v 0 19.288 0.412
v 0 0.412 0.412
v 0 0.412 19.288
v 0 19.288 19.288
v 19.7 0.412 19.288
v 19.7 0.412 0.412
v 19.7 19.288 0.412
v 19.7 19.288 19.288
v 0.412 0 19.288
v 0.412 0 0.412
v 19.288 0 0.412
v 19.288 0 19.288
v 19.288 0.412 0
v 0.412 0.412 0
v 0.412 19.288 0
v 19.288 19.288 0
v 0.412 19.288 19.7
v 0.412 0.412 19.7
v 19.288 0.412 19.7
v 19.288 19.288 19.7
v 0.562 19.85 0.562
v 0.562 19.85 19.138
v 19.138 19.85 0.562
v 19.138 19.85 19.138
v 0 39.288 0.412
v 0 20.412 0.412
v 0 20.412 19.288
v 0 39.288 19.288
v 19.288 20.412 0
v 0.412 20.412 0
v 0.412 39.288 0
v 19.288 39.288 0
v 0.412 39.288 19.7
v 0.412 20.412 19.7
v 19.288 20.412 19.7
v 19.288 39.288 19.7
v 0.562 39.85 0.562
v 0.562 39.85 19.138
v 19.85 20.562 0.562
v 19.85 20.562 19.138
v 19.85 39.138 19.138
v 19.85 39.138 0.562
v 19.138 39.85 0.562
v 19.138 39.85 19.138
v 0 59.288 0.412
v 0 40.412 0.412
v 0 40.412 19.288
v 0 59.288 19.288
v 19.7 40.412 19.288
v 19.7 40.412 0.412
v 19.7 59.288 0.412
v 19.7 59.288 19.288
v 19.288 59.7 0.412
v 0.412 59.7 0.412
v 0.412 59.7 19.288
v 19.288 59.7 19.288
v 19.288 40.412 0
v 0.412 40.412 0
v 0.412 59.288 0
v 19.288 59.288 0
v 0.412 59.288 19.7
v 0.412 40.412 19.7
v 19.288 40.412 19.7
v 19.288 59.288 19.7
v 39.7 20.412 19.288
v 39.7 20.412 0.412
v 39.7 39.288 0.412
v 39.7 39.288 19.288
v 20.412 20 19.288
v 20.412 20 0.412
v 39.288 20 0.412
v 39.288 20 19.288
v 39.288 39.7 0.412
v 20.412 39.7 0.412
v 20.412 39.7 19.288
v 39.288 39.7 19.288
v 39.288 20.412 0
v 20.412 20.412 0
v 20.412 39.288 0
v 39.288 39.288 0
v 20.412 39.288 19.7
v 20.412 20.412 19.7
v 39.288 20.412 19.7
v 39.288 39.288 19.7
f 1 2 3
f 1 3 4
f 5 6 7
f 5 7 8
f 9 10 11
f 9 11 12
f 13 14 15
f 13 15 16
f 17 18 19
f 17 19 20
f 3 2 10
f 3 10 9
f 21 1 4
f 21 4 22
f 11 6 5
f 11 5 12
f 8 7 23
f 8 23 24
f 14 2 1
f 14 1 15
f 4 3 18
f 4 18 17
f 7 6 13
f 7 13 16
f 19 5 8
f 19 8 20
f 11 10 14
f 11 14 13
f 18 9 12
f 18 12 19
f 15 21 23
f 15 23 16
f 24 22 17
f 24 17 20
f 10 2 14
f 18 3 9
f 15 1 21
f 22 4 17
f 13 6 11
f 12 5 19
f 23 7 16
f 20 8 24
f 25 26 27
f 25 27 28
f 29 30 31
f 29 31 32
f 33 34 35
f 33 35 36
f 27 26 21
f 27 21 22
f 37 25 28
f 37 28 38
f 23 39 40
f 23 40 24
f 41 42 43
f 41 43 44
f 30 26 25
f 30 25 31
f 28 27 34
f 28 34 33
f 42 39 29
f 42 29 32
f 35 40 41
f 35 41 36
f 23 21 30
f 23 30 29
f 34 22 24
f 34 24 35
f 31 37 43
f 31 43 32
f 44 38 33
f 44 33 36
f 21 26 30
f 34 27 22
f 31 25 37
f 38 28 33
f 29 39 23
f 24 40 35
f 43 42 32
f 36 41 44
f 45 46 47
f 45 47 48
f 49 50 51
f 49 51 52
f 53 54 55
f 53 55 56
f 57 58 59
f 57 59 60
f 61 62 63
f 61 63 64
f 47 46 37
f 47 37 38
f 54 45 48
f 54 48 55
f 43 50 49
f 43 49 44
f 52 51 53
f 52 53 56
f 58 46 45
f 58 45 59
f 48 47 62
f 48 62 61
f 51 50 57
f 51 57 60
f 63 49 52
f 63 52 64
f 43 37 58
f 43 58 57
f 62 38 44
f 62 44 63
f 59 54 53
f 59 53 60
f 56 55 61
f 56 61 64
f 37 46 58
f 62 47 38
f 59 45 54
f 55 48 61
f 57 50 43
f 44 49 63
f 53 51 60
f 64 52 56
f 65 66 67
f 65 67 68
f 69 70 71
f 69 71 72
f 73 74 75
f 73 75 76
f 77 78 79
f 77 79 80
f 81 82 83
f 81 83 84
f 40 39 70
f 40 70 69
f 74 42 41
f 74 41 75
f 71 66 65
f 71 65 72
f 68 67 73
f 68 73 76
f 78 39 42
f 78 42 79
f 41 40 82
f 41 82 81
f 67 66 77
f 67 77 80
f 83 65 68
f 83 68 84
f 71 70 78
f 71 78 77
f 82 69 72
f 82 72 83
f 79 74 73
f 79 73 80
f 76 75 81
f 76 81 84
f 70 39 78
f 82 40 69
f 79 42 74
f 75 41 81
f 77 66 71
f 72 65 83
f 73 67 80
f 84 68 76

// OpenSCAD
// Wongo piece 15: T. GPL-3.0.
// 20 mm lattice; 0.15 mm inward surface clearance; 0.5 mm chamfer.
// Mesh is identical to the STL; changing unit scales the complete finished mesh.
unit=20;
scale([unit/20,unit/20,unit/20]) polyhedron(points=[[0,19.28786797,0.41213203],[0,0.41213203,0.41213203],[0,0.41213203,19.28786797],[0,19.28786797,19.28786797],[19.7,0.41213203,19.28786797],[19.7,0.41213203,0.41213203],[19.7,19.28786797,0.41213203],[19.7,19.28786797,19.28786797],[0.41213203,0,19.28786797],[0.41213203,0,0.41213203],[19.28786797,0,0.41213203],[19.28786797,0,19.28786797],[19.28786797,0.41213203,0],[0.41213203,0.41213203,0],[0.41213203,19.28786797,0],[19.28786797,19.28786797,0],[0.41213203,19.28786797,19.7],[0.41213203,0.41213203,19.7],[19.28786797,0.41213203,19.7],[19.28786797,19.28786797,19.7],[0.56213203,19.85,0.56213203],[0.56213203,19.85,19.13786797],[19.13786797,19.85,0.56213203],[19.13786797,19.85,19.13786797],[0,39.28786797,0.41213203],[0,20.41213203,0.41213203],[0,20.41213203,19.28786797],[0,39.28786797,19.28786797],[19.28786797,20.41213203,0],[0.41213203,20.41213203,0],[0.41213203,39.28786797,0],[19.28786797,39.28786797,0],[0.41213203,39.28786797,19.7],[0.41213203,20.41213203,19.7],[19.28786797,20.41213203,19.7],[19.28786797,39.28786797,19.7],[0.56213203,39.85,0.56213203],[0.56213203,39.85,19.13786797],[19.85,20.56213203,0.56213203],[19.85,20.56213203,19.13786797],[19.85,39.13786797,19.13786797],[19.85,39.13786797,0.56213203],[19.13786797,39.85,0.56213203],[19.13786797,39.85,19.13786797],[0,59.28786797,0.41213203],[0,40.41213203,0.41213203],[0,40.41213203,19.28786797],[0,59.28786797,19.28786797],[19.7,40.41213203,19.28786797],[19.7,40.41213203,0.41213203],[19.7,59.28786797,0.41213203],[19.7,59.28786797,19.28786797],[19.28786797,59.7,0.41213203],[0.41213203,59.7,0.41213203],[0.41213203,59.7,19.28786797],[19.28786797,59.7,19.28786797],[19.28786797,40.41213203,0],[0.41213203,40.41213203,0],[0.41213203,59.28786797,0],[19.28786797,59.28786797,0],[0.41213203,59.28786797,19.7],[0.41213203,40.41213203,19.7],[19.28786797,40.41213203,19.7],[19.28786797,59.28786797,19.7],[39.7,20.41213203,19.28786797],[39.7,20.41213203,0.41213203],[39.7,39.28786797,0.41213203],[39.7,39.28786797,19.28786797],[20.41213203,20,19.28786797],[20.41213203,20,0.41213203],[39.28786797,20,0.41213203],[39.28786797,20,19.28786797],[39.28786797,39.7,0.41213203],[20.41213203,39.7,0.41213203],[20.41213203,39.7,19.28786797],[39.28786797,39.7,19.28786797],[39.28786797,20.41213203,0],[20.41213203,20.41213203,0],[20.41213203,39.28786797,0],[39.28786797,39.28786797,0],[20.41213203,39.28786797,19.7],[20.41213203,20.41213203,19.7],[39.28786797,20.41213203,19.7],[39.28786797,39.28786797,19.7]],faces=[[2,1,0],[3,2,0],[6,5,4],[7,6,4],[10,9,8],[11,10,8],[14,13,12],[15,14,12],[18,17,16],[19,18,16],[9,1,2],[8,9,2],[3,0,20],[21,3,20],[4,5,10],[11,4,10],[22,6,7],[23,22,7],[0,1,13],[14,0,13],[17,2,3],[16,17,3],[12,5,6],[15,12,6],[7,4,18],[19,7,18],[13,9,10],[12,13,10],[11,8,17],[18,11,17],[22,20,14],[15,22,14],[16,21,23],[19,16,23],[13,1,9],[8,2,17],[20,0,14],[16,3,21],[10,5,12],[18,4,11],[15,6,22],[23,7,19],[26,25,24],[27,26,24],[30,29,28],[31,30,28],[34,33,32],[35,34,32],[20,25,26],[21,20,26],[27,24,36],[37,27,36],[39,38,22],[23,39,22],[42,41,40],[43,42,40],[24,25,29],[30,24,29],[33,26,27],[32,33,27],[28,38,41],[31,28,41],[40,39,34],[35,40,34],[29,20,22],[28,29,22],[23,21,33],[34,23,33],[42,36,30],[31,42,30],[32,37,43],[35,32,43],[29,25,20],[21,26,33],[36,24,30],[32,27,37],[22,38,28],[34,39,23],[31,41,42],[43,40,35],[46,45,44],[47,46,44],[50,49,48],[51,50,48],[54,53,52],[55,54,52],[58,57,56],[59,58,56],[62,61,60],[63,62,60],[36,45,46],[37,36,46],[47,44,53],[54,47,53],[48,49,42],[43,48,42],[52,50,51],[55,52,51],[44,45,57],[58,44,57],[61,46,47],[60,61,47],[56,49,50],[59,56,50],[51,48,62],[63,51,62],[57,36,42],[56,57,42],[43,37,61],[62,43,61],[52,53,58],[59,52,58],[60,54,55],[63,60,55],[57,45,36],[37,46,61],[53,44,58],[60,47,54],[42,49,56],[62,48,43],[59,50,52],[55,51,63],[66,65,64],[67,66,64],[70,69,68],[71,70,68],[74,73,72],[75,74,72],[78,77,76],[79,78,76],[82,81,80],[83,82,80],[69,38,39],[68,69,39],[40,41,73],[74,40,73],[64,65,70],[71,64,70],[72,66,67],[75,72,67],[41,38,77],[78,41,77],[81,39,40],[80,81,40],[76,65,66],[79,76,66],[67,64,82],[83,67,82],[77,69,70],[76,77,70],[71,68,81],[82,71,81],[72,73,78],[79,72,78],[80,74,75],[83,80,75],[77,38,69],[68,39,81],[73,41,78],[80,40,74],[70,65,76],[82,64,71],[79,66,72],[75,67,83]],convexity=10);
